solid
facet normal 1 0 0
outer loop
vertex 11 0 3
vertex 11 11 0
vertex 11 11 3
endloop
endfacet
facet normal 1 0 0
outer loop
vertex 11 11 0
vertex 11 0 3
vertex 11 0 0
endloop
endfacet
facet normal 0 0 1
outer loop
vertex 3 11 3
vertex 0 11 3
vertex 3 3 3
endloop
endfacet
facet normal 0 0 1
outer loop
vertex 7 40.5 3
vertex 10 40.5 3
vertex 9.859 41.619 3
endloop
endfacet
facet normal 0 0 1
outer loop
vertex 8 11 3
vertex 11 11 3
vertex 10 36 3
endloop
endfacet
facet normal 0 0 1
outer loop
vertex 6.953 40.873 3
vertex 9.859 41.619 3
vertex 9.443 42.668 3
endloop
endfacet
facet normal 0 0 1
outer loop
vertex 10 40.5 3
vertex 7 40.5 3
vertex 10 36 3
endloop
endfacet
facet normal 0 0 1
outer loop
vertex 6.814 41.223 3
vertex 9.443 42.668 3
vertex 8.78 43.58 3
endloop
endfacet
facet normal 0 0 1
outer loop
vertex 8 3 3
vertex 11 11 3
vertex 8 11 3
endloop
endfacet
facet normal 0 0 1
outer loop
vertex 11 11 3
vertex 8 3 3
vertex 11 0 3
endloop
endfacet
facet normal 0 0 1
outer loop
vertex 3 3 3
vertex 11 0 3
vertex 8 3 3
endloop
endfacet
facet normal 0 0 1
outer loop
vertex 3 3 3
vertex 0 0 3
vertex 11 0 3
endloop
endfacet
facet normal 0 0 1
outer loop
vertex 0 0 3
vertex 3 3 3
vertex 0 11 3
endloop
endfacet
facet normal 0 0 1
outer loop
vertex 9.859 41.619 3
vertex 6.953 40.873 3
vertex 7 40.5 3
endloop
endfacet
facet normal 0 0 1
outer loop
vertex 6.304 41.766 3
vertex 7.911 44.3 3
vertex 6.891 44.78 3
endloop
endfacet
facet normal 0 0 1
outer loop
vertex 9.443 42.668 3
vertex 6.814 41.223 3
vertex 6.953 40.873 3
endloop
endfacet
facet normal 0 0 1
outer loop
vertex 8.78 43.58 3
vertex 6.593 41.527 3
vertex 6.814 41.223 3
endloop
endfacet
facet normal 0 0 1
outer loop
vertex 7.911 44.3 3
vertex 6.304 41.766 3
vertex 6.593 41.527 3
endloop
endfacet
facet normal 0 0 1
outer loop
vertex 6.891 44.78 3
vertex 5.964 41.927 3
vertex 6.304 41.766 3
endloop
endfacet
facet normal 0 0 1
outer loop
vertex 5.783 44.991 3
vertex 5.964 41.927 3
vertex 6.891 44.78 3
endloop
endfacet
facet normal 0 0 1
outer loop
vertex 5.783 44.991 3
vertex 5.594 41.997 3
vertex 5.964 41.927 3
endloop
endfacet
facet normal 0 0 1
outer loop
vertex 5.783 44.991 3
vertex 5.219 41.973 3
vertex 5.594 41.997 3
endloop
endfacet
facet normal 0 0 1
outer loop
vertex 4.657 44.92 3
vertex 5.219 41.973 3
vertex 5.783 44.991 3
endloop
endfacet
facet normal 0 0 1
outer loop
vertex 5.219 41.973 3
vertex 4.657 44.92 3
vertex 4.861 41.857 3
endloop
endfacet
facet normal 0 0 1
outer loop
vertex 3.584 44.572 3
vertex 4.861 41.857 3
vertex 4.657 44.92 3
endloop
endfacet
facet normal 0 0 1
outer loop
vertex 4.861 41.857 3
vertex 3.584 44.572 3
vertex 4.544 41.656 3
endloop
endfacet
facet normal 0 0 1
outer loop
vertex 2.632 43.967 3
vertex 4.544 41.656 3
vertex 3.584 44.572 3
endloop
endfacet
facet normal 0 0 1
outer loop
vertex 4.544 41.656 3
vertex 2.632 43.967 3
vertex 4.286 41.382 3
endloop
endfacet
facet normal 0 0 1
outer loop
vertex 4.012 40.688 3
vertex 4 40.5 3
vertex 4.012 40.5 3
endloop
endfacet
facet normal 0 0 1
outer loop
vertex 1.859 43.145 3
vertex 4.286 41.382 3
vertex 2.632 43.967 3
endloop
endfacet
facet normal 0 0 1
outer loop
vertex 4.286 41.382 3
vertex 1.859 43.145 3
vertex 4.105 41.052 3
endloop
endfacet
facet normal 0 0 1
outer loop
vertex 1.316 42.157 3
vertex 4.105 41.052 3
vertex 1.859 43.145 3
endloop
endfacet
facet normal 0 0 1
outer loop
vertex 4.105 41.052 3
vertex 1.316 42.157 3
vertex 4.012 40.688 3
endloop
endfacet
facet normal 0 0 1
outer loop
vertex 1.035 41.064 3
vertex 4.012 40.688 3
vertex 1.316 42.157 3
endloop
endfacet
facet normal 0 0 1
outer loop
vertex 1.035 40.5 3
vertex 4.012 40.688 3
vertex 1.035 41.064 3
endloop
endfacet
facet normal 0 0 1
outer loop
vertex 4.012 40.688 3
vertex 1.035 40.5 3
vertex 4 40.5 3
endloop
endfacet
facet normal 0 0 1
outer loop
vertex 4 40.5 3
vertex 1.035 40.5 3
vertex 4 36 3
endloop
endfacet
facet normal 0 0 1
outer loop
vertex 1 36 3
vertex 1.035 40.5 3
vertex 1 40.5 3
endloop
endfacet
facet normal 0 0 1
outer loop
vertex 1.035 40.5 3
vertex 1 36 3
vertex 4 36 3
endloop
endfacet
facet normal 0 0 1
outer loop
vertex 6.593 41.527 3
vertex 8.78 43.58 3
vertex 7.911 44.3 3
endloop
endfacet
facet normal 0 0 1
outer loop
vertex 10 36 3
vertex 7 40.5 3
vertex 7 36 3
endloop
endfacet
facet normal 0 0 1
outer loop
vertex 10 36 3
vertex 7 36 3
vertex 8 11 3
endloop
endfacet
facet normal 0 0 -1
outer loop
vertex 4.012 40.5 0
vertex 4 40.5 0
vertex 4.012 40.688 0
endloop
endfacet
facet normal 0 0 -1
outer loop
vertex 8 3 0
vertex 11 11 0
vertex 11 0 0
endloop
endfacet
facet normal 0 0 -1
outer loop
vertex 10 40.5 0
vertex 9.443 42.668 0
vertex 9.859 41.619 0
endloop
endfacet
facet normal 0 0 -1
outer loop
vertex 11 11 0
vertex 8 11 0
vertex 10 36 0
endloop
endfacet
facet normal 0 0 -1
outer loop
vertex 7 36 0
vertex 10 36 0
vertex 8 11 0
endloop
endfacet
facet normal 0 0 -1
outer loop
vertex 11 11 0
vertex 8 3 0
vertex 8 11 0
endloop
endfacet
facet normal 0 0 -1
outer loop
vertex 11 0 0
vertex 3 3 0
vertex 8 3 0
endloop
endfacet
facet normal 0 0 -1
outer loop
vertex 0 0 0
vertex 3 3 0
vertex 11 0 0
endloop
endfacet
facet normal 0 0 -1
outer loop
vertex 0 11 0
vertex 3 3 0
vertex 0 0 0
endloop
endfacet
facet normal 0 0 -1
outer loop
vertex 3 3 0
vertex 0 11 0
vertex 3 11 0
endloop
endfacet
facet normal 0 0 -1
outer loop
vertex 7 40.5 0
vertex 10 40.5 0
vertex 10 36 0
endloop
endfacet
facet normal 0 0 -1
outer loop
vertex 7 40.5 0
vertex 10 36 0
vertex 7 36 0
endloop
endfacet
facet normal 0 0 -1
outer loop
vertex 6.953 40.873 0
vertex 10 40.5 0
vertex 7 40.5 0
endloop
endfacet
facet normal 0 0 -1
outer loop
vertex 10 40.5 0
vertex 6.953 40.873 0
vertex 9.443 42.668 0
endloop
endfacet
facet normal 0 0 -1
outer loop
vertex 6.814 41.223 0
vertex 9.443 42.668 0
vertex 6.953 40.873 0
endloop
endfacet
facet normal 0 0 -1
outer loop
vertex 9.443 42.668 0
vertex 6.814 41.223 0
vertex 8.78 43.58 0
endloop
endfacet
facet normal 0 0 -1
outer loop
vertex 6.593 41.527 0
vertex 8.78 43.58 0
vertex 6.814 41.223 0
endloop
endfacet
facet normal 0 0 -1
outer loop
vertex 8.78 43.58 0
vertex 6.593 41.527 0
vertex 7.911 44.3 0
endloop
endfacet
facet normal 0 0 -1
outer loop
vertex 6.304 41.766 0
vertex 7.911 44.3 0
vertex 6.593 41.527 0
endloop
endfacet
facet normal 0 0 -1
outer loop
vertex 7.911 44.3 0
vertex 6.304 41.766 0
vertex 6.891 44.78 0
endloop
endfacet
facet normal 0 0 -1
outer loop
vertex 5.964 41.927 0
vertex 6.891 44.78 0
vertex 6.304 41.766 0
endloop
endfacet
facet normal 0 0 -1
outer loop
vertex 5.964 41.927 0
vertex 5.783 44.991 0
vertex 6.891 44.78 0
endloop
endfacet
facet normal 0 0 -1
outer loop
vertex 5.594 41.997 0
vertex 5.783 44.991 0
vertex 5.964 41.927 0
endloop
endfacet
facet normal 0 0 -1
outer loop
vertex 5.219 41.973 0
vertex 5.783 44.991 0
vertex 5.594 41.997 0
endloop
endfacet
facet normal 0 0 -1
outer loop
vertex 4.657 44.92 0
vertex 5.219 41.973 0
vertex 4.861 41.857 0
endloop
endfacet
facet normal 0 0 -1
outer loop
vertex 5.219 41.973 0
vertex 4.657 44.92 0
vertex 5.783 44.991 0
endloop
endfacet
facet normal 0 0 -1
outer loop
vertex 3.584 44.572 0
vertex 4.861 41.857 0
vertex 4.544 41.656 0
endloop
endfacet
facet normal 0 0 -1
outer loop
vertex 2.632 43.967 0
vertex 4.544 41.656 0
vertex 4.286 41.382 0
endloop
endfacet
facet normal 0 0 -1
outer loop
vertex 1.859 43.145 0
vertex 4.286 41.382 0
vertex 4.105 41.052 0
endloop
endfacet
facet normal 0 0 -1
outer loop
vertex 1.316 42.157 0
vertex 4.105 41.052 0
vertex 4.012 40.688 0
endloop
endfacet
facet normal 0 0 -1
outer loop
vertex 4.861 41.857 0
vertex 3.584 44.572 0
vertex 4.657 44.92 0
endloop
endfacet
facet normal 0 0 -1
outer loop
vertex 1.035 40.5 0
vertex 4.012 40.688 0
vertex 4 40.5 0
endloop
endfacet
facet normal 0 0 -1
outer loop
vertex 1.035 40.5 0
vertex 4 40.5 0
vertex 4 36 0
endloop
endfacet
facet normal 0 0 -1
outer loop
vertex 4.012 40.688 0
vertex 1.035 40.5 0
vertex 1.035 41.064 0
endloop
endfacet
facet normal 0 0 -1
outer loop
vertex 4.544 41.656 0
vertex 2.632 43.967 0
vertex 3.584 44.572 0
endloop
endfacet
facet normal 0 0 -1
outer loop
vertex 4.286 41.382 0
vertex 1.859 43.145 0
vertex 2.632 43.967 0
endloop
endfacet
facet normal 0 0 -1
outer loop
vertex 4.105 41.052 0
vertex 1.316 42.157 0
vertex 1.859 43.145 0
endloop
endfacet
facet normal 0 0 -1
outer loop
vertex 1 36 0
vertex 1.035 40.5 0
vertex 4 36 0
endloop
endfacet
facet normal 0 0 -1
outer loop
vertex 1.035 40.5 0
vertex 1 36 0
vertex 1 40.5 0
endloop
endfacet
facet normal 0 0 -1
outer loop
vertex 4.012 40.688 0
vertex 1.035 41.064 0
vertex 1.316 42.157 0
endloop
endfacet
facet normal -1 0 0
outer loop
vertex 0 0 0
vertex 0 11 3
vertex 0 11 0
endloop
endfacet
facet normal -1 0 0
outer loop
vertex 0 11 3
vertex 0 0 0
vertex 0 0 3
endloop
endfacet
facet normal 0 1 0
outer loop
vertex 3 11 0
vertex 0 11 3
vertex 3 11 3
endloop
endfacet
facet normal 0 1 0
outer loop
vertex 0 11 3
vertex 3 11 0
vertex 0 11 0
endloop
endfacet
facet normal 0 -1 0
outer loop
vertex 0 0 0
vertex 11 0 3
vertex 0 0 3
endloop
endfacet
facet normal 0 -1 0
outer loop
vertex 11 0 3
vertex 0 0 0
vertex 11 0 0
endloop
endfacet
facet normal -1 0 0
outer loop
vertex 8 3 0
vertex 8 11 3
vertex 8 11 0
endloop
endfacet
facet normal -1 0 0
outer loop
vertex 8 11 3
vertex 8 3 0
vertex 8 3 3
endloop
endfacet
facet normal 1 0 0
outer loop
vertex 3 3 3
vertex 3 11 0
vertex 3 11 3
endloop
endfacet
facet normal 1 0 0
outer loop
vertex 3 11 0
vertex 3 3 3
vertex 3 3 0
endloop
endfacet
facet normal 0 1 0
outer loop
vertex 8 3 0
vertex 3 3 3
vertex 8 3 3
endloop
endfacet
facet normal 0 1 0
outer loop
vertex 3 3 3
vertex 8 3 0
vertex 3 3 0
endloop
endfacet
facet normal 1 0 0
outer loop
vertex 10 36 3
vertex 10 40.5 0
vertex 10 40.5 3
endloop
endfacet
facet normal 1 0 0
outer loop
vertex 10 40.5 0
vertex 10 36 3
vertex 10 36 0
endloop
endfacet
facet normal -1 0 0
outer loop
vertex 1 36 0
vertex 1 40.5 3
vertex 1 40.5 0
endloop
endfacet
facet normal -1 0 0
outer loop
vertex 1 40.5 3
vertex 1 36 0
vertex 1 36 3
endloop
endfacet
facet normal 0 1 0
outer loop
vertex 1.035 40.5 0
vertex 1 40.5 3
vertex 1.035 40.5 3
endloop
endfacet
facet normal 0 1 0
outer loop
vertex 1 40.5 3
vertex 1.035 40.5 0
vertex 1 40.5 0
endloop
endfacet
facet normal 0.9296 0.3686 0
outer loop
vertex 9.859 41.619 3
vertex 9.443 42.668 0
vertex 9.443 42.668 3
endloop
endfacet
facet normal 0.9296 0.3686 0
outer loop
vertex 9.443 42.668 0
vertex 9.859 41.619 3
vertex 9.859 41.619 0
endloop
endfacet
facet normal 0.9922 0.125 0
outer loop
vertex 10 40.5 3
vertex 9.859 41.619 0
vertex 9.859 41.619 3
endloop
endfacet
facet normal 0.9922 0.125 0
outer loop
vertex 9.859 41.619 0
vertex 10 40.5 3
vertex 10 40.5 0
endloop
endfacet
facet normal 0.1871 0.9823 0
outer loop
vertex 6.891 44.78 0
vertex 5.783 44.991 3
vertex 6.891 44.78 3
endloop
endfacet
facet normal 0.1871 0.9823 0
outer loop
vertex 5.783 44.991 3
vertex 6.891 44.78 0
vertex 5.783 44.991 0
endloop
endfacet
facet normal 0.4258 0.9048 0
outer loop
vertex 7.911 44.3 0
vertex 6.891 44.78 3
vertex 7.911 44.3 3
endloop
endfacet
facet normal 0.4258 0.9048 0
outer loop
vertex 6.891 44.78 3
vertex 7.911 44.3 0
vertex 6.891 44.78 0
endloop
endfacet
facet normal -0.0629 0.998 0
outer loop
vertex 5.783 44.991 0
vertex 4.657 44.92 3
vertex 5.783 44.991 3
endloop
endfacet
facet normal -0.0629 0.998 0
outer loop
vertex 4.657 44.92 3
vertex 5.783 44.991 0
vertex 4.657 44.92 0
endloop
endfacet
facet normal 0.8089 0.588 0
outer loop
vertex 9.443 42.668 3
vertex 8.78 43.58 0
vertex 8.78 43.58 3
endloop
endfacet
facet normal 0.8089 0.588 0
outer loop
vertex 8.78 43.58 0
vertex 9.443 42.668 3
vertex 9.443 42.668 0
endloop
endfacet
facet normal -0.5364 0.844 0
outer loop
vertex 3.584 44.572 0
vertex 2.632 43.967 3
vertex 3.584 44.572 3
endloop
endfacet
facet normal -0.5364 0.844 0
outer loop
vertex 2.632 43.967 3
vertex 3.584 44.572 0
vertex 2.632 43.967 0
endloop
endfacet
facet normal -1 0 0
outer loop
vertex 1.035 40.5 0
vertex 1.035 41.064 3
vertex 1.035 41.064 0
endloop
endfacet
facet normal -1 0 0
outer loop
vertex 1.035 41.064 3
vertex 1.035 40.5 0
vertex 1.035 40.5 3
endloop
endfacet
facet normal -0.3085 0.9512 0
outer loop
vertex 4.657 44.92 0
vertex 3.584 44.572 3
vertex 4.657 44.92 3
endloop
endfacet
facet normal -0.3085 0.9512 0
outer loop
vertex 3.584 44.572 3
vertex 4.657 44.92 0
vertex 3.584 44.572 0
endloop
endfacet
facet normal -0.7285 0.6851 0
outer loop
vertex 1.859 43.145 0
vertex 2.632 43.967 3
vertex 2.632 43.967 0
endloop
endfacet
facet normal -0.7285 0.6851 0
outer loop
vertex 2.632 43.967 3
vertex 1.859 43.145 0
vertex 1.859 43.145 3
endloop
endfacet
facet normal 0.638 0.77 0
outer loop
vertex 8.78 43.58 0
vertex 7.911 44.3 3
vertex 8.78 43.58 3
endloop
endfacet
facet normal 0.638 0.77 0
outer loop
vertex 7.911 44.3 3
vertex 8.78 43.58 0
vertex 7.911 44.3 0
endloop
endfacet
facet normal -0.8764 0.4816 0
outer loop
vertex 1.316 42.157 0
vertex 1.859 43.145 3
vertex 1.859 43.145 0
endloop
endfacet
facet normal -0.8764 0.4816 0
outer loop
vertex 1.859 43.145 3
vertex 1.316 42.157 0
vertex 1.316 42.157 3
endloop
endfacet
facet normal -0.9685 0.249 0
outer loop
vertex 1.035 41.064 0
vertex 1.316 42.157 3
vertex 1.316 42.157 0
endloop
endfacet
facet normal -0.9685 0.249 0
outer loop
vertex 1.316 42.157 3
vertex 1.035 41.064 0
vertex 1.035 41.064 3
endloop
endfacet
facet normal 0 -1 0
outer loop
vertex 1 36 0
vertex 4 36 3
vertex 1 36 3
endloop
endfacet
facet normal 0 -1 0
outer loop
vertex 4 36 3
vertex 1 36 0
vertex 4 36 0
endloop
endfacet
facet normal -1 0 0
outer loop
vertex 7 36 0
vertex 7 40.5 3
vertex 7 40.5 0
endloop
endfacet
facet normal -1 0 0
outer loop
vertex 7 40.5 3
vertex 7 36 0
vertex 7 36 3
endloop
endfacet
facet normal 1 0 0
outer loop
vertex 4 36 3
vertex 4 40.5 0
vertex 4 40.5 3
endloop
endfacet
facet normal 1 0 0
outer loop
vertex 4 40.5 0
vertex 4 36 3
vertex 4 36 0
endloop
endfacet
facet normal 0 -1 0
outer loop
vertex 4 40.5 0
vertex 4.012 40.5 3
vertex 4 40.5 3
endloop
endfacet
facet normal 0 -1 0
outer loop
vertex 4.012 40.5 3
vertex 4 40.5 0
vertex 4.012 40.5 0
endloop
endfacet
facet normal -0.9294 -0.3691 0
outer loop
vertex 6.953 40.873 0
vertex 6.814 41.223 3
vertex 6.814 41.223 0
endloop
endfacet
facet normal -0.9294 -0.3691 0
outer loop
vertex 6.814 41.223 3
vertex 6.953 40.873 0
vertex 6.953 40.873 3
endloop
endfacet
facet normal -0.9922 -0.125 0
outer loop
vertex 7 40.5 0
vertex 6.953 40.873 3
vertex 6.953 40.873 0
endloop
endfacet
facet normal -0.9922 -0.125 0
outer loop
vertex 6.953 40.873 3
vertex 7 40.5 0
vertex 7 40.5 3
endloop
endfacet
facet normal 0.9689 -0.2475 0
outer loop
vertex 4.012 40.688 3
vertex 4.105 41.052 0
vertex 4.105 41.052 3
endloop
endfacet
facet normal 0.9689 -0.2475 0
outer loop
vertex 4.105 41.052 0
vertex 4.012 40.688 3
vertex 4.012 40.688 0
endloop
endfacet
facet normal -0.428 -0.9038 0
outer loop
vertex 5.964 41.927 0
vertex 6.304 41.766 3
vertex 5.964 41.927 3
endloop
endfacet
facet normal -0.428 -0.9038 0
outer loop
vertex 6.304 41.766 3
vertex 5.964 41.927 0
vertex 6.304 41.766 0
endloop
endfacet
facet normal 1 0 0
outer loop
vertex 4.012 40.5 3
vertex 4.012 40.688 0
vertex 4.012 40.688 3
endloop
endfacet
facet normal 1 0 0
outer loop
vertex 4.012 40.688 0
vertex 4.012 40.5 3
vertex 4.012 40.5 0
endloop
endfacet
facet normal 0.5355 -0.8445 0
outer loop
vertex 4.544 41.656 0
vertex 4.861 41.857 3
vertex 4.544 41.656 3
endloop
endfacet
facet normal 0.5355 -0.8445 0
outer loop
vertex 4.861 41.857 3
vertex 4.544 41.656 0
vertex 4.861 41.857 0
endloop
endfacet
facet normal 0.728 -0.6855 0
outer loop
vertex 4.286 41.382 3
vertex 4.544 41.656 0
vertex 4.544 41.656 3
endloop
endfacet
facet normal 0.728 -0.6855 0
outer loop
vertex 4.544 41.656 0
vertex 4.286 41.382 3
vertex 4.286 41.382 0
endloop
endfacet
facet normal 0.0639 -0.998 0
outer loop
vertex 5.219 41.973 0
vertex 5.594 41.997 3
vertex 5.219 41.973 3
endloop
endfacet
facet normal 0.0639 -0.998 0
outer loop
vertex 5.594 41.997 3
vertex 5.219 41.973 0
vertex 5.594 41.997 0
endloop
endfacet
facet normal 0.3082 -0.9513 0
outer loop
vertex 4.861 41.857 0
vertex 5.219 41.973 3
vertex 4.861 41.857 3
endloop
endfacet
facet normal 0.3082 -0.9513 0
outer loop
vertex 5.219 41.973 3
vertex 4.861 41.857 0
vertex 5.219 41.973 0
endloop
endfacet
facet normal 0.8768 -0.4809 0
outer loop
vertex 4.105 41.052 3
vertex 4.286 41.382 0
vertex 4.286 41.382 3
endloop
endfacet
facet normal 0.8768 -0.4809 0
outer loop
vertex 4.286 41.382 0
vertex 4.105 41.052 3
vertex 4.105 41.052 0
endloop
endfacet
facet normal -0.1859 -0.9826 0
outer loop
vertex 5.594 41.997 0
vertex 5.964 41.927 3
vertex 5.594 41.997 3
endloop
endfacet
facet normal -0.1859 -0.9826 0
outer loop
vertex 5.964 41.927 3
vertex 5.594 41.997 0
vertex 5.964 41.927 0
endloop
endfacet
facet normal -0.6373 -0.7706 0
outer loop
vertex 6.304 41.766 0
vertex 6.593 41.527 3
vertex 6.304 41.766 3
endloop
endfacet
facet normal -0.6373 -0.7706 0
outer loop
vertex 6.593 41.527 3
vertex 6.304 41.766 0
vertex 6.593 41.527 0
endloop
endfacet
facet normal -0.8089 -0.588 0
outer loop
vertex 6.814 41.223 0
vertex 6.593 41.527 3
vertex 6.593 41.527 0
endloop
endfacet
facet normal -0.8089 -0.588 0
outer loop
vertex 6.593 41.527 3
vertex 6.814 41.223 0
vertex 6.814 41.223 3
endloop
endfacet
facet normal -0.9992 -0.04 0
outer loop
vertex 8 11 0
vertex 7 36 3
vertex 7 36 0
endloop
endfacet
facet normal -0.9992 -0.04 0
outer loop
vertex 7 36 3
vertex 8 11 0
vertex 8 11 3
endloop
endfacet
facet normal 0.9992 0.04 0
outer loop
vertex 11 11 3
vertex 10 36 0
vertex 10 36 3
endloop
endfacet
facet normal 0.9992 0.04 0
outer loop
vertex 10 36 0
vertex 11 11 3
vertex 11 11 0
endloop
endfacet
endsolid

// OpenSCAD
// Adapter von IKEA VIDGA Rollen auf Moltonbahnen mit Ösen

// Allgemeiner Kram
wi = 3;
wa = 3;

// Gleiterhalterung
g_inner = 3;
g_height = 6;

// Moltonhalterung
m_inner = 5;
m_height = 11;
m_gap = 25;

// wat?
d_inner = (m_inner - g_inner)/2;
alpha = atan(d_inner/m_gap);
g_wa = cos(alpha)*wa;

$fn = 25;

union(){
	difference(){
		cube([2*wa+m_inner, m_height, wi]);
		translate([wa, wa, 0]) cube([m_inner, m_height - wa, wi]);
	}
	translate([d_inner, m_height + m_gap, 0]) difference(){
		cube([2*wa + g_inner, wa + g_height, wi]);
		translate([wa, 0, 0]) cube([g_inner, g_height - g_inner * 0.5, wi]);
		translate([wa + g_inner/2, g_height - g_inner * 0.5, 0]) cylinder(d=g_inner, h=wi);
		translate([0, g_height - g_inner/2, 0]) difference(){
			cube([2*wa + g_inner, wa + g_inner/2, wi]);
			translate([g_inner/2 + wa, 0, 0]) cylinder(r=g_inner/2 + wa, h=wi);
		}
	}
	translate([wa + m_inner + (wa - g_wa), m_height, 0]){
		ext = m_gap/cos(alpha) - m_gap;
		ext2 = sin(alpha)*wa;
		
		translate([g_wa, 0, 0]) rotate([0, 0, alpha])
		translate([-g_wa, 0, 0]) cube([g_wa, m_gap + ext + ext2, wi]);
	}
}
